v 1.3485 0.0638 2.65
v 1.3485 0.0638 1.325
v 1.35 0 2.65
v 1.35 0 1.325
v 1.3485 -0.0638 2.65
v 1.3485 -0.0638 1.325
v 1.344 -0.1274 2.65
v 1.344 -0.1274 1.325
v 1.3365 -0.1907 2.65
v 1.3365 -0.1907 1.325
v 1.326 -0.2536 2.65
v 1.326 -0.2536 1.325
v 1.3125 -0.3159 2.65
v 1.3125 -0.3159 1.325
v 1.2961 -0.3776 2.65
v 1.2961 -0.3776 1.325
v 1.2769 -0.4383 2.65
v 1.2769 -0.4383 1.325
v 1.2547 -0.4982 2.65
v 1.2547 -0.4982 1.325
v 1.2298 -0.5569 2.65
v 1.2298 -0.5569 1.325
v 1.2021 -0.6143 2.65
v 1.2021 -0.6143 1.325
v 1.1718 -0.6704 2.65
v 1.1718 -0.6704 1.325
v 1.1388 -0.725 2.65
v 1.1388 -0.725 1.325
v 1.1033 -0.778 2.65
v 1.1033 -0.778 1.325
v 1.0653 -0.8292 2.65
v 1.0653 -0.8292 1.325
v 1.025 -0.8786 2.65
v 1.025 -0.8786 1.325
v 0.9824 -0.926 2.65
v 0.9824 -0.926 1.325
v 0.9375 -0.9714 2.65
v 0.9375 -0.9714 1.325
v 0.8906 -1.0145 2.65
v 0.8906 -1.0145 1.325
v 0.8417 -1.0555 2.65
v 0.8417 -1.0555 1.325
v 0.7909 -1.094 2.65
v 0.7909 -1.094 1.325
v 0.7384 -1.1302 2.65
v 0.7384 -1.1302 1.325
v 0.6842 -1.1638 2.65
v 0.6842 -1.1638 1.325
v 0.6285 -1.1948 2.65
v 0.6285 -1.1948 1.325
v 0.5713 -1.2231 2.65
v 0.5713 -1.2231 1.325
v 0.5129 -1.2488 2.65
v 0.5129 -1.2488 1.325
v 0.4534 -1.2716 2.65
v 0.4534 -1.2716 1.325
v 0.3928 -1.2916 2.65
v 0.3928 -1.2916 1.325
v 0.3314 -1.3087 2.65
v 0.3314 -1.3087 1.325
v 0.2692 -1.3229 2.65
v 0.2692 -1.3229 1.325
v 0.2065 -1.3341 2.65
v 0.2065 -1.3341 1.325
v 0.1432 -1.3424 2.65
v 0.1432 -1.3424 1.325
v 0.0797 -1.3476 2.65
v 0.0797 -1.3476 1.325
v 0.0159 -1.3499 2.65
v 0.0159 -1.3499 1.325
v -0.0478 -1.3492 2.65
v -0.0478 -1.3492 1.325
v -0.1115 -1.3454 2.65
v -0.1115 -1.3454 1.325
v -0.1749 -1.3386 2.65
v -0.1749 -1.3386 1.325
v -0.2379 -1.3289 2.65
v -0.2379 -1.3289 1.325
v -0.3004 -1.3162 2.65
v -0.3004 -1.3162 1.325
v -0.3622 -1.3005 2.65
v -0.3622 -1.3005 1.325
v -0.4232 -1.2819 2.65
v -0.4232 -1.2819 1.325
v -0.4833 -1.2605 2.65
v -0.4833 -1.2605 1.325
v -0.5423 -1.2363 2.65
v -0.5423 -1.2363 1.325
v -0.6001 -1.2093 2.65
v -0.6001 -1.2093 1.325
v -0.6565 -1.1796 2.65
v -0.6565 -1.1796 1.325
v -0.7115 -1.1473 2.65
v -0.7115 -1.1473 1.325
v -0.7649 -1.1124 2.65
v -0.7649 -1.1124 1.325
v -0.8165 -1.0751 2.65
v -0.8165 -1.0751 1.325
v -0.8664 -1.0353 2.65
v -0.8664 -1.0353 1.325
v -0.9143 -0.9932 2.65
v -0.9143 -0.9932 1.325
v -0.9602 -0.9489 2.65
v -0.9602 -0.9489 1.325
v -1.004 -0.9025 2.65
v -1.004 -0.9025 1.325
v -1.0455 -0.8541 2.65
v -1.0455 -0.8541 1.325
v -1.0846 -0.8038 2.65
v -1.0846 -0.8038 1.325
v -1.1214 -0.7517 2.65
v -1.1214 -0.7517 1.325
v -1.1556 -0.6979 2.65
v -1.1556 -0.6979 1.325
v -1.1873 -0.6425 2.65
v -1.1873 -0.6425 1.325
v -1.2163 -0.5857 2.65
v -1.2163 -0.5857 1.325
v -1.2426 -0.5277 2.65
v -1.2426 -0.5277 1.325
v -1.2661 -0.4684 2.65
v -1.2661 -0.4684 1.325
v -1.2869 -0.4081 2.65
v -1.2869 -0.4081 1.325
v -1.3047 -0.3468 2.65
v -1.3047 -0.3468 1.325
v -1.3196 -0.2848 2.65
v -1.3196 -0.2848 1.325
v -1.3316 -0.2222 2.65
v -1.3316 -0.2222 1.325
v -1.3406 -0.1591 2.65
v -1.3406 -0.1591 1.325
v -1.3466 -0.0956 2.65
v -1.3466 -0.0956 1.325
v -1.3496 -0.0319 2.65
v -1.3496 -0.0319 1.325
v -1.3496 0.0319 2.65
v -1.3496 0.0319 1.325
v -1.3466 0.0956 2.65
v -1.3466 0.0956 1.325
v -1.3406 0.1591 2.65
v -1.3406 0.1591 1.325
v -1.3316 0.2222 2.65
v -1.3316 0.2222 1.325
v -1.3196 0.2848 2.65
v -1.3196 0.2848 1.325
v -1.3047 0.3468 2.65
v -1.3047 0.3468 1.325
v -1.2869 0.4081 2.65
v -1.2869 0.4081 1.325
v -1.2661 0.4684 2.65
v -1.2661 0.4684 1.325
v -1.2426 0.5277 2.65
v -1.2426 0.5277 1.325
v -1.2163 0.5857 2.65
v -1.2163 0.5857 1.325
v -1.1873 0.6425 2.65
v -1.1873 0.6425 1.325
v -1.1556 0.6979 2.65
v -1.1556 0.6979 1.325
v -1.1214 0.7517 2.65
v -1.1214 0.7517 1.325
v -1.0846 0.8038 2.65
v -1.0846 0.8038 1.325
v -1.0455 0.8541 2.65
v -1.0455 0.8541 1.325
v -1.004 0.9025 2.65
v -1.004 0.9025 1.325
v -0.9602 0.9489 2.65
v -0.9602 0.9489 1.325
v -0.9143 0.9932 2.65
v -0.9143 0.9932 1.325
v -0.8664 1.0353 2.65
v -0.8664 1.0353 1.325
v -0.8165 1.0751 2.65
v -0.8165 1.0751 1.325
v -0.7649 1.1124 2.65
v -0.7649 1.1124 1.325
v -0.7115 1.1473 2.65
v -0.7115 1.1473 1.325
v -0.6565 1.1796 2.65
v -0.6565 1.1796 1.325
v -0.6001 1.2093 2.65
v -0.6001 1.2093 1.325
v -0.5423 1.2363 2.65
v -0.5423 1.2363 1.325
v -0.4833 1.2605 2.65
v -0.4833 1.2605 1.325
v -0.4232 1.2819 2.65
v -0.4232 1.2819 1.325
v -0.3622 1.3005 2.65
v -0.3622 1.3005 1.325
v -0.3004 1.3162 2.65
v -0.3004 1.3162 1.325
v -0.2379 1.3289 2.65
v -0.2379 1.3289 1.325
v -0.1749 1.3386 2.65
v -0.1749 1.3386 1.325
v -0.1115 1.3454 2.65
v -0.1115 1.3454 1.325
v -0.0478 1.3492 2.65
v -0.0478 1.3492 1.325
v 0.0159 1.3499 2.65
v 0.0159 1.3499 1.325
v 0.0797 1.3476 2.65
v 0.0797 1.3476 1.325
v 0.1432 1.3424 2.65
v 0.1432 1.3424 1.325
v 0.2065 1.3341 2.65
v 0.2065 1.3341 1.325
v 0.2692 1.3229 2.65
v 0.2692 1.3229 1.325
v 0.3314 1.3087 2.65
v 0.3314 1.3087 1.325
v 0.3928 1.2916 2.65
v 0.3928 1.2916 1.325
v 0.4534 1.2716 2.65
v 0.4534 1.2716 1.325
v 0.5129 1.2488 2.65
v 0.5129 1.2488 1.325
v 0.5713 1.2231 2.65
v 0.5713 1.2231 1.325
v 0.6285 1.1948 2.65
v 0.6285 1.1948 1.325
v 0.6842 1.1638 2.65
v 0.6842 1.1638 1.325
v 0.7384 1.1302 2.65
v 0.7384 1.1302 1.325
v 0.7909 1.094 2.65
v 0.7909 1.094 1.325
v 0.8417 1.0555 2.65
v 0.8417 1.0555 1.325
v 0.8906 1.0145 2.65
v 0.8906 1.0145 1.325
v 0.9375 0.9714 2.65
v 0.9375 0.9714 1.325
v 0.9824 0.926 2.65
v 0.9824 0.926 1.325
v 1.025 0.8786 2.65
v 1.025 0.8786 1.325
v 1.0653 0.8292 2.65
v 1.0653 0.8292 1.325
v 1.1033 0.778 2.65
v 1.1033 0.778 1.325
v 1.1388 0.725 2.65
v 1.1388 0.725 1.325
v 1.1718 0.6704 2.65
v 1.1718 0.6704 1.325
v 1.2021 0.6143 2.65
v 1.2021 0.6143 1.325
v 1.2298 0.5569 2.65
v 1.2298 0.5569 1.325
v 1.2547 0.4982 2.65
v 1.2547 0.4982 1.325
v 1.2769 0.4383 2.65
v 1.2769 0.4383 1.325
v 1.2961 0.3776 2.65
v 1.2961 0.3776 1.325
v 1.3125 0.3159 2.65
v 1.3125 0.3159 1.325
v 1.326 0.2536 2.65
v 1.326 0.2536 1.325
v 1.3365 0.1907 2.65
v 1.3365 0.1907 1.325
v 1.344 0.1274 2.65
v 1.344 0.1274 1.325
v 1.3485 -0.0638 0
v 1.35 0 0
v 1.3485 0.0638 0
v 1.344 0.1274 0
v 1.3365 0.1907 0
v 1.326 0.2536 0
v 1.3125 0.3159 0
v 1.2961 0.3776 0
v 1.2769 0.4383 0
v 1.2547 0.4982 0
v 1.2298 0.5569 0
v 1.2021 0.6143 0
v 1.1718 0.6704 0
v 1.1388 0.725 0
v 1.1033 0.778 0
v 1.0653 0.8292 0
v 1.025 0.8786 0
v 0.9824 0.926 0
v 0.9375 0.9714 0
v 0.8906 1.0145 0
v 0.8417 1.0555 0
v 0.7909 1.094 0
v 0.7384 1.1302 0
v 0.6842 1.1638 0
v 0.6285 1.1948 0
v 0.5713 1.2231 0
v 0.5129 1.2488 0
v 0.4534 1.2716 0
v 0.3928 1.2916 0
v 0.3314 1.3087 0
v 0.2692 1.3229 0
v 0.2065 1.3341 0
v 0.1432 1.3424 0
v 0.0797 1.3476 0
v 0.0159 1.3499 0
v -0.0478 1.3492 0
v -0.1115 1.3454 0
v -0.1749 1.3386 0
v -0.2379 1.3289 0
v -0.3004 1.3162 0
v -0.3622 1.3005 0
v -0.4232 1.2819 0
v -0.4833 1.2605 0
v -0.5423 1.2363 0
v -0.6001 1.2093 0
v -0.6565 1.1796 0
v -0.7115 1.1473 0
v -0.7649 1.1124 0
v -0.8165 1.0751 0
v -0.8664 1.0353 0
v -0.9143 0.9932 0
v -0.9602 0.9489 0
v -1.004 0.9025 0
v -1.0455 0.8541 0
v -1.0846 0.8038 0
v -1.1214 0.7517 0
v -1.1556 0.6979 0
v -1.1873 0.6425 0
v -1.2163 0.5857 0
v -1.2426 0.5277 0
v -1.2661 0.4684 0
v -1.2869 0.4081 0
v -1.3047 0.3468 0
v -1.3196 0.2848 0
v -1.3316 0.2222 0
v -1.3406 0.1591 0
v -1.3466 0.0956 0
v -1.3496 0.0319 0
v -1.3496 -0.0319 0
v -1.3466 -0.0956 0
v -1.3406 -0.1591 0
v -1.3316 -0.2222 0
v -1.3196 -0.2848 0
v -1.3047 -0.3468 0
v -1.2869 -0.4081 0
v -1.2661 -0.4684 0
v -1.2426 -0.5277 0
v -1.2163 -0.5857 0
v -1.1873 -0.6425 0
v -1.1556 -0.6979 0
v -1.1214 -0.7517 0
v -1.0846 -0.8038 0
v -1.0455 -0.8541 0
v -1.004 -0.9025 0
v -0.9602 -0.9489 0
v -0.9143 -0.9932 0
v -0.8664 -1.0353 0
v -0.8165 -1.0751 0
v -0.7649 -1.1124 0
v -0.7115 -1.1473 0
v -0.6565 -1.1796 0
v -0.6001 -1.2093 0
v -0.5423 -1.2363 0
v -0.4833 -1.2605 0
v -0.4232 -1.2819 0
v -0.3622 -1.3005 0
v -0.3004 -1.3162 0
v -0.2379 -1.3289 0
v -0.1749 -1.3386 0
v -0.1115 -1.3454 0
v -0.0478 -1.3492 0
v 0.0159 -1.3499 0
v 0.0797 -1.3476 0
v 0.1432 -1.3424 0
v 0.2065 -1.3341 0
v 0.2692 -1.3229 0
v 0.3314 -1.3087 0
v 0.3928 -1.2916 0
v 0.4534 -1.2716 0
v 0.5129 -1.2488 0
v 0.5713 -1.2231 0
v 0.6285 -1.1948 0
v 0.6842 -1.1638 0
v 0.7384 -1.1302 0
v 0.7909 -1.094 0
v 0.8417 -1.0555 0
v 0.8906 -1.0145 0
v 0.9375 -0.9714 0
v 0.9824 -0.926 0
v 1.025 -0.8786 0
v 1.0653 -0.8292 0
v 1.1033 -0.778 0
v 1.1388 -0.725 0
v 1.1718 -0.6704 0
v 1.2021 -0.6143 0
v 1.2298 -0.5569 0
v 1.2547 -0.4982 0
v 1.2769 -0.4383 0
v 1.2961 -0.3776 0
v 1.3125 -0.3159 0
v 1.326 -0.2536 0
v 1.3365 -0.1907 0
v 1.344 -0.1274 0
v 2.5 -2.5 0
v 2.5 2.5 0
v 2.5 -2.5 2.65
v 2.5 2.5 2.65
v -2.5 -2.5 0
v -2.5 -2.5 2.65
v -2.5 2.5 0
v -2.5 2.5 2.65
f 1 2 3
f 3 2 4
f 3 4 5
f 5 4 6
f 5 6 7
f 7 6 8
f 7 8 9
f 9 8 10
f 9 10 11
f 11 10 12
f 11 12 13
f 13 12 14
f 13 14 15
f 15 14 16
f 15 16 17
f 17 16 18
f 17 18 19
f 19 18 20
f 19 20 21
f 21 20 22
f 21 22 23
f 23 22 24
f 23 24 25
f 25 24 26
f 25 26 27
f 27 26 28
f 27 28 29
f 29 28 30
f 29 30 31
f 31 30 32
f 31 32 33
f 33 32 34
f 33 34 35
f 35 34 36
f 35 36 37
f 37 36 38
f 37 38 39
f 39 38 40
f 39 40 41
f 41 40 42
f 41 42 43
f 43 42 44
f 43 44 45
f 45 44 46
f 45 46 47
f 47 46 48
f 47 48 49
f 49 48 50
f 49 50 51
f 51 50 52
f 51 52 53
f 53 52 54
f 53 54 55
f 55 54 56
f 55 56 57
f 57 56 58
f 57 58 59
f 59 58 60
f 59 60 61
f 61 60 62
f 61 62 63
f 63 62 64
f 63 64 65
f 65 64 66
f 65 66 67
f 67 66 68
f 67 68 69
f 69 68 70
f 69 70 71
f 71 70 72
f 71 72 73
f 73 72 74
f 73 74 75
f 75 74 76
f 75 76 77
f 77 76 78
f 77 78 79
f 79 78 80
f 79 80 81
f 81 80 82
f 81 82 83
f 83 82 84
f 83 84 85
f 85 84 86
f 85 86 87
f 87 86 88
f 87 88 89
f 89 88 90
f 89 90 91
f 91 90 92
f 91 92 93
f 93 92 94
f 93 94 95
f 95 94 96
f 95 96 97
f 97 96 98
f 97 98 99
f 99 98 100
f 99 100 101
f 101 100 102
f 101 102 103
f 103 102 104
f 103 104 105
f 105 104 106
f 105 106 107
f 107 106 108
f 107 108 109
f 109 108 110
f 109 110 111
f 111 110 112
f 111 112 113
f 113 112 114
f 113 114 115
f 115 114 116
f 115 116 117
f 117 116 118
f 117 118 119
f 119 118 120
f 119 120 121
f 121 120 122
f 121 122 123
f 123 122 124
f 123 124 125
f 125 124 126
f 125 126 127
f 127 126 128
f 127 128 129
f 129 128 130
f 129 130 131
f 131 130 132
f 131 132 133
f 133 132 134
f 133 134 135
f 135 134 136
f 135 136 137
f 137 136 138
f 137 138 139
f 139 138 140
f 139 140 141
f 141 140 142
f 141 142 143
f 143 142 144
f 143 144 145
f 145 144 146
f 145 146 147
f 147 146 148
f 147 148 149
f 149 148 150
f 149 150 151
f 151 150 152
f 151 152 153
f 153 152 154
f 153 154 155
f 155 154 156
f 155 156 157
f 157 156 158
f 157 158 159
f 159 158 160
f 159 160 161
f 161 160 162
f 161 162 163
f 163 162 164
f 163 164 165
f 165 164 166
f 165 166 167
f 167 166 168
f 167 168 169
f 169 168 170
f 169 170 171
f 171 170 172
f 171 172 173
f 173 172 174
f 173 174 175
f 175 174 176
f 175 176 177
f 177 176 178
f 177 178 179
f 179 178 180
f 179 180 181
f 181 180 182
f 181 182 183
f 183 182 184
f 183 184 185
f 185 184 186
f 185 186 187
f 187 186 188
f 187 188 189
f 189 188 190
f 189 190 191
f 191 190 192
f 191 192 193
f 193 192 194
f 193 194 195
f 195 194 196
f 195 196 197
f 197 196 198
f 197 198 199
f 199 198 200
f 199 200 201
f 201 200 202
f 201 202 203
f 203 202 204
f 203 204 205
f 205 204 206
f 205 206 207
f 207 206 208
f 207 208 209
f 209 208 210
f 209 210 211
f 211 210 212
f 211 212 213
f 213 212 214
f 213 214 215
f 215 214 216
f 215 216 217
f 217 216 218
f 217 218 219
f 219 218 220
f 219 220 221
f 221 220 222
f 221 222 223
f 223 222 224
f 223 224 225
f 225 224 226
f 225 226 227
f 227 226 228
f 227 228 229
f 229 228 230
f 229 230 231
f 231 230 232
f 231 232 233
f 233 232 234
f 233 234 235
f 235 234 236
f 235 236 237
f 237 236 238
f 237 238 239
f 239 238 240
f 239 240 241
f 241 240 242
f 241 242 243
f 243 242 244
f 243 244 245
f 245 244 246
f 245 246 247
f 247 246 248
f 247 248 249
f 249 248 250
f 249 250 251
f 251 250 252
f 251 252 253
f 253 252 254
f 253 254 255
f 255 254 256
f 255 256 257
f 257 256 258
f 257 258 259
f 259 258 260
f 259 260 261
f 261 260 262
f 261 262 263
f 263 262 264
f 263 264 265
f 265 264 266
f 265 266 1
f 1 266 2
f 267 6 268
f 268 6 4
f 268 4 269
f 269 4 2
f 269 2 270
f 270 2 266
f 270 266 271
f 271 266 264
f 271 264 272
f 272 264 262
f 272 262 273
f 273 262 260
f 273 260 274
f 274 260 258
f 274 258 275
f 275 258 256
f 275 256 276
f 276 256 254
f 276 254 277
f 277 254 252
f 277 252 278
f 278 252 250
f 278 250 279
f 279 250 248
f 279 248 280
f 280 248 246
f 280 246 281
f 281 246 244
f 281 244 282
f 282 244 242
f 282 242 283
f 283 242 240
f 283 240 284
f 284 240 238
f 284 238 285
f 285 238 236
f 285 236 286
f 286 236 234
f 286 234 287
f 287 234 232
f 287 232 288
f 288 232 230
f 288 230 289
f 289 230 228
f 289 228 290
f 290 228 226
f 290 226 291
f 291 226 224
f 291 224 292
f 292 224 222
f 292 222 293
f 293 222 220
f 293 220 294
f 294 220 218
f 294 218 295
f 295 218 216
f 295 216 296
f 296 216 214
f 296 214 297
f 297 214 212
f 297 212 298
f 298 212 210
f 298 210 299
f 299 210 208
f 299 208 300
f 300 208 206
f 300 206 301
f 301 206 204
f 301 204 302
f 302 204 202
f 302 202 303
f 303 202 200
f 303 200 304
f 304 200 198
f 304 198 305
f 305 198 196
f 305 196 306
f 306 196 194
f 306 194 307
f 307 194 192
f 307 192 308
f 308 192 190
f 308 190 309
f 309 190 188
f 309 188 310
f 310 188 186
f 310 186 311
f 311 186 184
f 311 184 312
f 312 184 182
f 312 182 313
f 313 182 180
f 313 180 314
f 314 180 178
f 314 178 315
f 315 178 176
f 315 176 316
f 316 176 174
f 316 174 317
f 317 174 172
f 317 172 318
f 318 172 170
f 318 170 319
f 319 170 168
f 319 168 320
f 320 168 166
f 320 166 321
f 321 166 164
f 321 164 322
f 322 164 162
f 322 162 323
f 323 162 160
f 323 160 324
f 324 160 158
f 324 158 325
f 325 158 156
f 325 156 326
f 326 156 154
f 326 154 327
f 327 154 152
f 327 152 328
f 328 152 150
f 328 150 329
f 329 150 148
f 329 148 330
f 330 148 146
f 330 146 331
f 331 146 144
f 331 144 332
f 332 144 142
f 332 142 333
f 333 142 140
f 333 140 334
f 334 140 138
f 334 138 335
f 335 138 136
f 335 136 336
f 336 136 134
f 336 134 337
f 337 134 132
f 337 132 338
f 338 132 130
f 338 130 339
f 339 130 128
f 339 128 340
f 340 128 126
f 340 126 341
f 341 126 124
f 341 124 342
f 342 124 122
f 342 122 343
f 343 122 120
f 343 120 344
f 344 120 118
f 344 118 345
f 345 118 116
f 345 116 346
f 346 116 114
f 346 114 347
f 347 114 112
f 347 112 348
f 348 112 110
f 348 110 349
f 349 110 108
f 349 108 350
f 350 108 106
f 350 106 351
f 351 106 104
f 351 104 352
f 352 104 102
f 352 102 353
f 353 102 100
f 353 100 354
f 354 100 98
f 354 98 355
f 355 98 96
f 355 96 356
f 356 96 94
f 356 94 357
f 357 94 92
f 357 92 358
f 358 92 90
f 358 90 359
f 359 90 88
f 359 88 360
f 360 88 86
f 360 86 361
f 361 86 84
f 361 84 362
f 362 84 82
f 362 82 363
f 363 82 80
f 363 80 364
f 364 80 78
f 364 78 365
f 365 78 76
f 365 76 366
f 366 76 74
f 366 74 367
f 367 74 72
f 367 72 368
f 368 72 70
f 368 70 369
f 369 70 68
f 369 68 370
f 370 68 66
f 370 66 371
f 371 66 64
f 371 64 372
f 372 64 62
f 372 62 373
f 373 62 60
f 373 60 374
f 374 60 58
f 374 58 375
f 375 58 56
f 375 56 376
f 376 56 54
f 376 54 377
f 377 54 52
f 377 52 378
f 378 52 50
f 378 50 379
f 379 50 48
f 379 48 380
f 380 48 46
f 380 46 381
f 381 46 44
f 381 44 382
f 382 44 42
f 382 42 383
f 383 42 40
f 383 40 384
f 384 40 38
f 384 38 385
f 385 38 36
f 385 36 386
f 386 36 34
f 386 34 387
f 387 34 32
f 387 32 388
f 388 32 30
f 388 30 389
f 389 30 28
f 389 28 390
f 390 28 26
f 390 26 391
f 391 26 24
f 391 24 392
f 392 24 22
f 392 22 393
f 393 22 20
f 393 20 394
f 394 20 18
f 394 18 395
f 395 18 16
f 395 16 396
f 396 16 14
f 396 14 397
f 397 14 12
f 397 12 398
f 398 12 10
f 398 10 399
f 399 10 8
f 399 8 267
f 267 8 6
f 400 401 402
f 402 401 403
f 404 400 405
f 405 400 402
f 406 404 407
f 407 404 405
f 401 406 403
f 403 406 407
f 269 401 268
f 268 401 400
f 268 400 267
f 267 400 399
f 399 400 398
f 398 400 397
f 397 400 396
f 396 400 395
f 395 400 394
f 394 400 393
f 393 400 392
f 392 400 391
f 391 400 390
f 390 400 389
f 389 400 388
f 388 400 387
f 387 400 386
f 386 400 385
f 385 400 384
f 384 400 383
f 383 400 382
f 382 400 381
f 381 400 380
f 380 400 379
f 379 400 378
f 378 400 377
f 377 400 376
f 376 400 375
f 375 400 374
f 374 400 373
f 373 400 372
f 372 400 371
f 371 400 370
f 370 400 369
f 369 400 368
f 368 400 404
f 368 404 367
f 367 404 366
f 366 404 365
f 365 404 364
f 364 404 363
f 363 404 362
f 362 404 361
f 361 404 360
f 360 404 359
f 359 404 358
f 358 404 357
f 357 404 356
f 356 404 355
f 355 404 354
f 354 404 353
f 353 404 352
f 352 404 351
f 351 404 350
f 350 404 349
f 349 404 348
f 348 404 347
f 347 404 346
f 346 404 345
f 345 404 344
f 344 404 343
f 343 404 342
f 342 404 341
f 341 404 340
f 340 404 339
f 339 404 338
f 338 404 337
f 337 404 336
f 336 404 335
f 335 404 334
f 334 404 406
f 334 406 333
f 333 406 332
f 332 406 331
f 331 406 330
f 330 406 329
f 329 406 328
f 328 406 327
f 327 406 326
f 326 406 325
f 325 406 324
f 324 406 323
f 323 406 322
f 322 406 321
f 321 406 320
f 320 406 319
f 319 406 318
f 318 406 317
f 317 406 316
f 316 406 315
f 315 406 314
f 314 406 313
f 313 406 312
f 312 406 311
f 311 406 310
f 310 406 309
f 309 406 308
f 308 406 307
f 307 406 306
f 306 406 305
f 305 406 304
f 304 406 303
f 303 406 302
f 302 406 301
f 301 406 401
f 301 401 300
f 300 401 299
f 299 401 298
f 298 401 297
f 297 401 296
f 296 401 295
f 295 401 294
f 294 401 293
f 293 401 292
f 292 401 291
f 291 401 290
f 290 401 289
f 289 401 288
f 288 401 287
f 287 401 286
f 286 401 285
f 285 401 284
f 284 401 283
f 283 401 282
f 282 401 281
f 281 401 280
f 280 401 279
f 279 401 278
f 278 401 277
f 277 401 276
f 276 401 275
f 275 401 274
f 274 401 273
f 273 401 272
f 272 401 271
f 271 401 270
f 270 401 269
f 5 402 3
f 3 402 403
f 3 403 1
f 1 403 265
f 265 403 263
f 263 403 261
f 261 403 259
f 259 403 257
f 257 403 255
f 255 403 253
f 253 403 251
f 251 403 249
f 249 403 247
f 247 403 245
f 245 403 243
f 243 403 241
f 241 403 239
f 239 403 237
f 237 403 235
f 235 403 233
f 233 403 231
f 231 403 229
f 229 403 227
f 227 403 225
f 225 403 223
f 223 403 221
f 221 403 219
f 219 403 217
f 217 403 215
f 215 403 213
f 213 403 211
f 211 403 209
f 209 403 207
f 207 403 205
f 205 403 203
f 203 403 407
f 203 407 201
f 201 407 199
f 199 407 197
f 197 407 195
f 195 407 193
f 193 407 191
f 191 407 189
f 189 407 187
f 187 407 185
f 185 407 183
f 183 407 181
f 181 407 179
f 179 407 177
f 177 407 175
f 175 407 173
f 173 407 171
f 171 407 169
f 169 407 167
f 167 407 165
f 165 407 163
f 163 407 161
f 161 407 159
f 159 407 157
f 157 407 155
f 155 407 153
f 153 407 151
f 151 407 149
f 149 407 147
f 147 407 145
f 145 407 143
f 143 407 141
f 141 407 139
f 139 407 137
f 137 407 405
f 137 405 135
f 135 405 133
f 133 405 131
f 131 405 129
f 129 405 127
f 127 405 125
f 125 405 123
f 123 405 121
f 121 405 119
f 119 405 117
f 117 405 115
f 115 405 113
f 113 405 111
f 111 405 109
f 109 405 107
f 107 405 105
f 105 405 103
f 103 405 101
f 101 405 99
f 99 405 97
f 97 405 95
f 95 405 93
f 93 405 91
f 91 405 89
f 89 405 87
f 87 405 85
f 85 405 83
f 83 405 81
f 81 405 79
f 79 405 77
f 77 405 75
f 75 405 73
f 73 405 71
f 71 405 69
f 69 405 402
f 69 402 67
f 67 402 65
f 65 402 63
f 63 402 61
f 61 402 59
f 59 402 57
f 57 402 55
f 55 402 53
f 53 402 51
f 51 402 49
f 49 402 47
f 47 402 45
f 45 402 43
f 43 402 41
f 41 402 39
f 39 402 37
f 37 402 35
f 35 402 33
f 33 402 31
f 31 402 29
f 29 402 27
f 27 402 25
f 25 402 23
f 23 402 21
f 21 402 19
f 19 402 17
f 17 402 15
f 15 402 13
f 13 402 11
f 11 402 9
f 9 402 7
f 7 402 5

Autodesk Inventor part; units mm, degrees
ref_plane "YZ Plane" through (0, 0, 0) normal (1, 0, 0) x (0, 1, 0)
ref_plane "XZ Plane" through (0, 0, 0) normal (0, 1, 0) x (-1, 0, 0)
ref_plane "XY Plane" through (0, 0, 0) normal (0, 0, 1) x (1, 0, 0)
sketch "Skizze1" plane through (0, 0, 0) normal (0, 0, 1) x (1, 0, 0)
  line L0 (-2.5, 2.5) -> (2.5, 2.5)
  line L1 (2.5, 2.5) -> (2.5, -2.5)
  line L2 (2.5, -2.5) -> (-2.5, -2.5)
  line L3 (-2.5, -2.5) -> (-2.5, 2.5)
  line L4 (-2.5, 2.5) -> (2.5, -2.5) construction
  line L5 (2.5, 2.5) -> (-2.5, -2.5) construction
  circle A0 centre (0, 0) radius 1.35
  dimension "d0" = 5
  dimension "d1" = 5
  dimension "d2" = 2.7
extrude "Extrusion1" add sketch "Skizze1" along normal blind 2.65
properties part number "camm_holder_wrist_part_spacer"
